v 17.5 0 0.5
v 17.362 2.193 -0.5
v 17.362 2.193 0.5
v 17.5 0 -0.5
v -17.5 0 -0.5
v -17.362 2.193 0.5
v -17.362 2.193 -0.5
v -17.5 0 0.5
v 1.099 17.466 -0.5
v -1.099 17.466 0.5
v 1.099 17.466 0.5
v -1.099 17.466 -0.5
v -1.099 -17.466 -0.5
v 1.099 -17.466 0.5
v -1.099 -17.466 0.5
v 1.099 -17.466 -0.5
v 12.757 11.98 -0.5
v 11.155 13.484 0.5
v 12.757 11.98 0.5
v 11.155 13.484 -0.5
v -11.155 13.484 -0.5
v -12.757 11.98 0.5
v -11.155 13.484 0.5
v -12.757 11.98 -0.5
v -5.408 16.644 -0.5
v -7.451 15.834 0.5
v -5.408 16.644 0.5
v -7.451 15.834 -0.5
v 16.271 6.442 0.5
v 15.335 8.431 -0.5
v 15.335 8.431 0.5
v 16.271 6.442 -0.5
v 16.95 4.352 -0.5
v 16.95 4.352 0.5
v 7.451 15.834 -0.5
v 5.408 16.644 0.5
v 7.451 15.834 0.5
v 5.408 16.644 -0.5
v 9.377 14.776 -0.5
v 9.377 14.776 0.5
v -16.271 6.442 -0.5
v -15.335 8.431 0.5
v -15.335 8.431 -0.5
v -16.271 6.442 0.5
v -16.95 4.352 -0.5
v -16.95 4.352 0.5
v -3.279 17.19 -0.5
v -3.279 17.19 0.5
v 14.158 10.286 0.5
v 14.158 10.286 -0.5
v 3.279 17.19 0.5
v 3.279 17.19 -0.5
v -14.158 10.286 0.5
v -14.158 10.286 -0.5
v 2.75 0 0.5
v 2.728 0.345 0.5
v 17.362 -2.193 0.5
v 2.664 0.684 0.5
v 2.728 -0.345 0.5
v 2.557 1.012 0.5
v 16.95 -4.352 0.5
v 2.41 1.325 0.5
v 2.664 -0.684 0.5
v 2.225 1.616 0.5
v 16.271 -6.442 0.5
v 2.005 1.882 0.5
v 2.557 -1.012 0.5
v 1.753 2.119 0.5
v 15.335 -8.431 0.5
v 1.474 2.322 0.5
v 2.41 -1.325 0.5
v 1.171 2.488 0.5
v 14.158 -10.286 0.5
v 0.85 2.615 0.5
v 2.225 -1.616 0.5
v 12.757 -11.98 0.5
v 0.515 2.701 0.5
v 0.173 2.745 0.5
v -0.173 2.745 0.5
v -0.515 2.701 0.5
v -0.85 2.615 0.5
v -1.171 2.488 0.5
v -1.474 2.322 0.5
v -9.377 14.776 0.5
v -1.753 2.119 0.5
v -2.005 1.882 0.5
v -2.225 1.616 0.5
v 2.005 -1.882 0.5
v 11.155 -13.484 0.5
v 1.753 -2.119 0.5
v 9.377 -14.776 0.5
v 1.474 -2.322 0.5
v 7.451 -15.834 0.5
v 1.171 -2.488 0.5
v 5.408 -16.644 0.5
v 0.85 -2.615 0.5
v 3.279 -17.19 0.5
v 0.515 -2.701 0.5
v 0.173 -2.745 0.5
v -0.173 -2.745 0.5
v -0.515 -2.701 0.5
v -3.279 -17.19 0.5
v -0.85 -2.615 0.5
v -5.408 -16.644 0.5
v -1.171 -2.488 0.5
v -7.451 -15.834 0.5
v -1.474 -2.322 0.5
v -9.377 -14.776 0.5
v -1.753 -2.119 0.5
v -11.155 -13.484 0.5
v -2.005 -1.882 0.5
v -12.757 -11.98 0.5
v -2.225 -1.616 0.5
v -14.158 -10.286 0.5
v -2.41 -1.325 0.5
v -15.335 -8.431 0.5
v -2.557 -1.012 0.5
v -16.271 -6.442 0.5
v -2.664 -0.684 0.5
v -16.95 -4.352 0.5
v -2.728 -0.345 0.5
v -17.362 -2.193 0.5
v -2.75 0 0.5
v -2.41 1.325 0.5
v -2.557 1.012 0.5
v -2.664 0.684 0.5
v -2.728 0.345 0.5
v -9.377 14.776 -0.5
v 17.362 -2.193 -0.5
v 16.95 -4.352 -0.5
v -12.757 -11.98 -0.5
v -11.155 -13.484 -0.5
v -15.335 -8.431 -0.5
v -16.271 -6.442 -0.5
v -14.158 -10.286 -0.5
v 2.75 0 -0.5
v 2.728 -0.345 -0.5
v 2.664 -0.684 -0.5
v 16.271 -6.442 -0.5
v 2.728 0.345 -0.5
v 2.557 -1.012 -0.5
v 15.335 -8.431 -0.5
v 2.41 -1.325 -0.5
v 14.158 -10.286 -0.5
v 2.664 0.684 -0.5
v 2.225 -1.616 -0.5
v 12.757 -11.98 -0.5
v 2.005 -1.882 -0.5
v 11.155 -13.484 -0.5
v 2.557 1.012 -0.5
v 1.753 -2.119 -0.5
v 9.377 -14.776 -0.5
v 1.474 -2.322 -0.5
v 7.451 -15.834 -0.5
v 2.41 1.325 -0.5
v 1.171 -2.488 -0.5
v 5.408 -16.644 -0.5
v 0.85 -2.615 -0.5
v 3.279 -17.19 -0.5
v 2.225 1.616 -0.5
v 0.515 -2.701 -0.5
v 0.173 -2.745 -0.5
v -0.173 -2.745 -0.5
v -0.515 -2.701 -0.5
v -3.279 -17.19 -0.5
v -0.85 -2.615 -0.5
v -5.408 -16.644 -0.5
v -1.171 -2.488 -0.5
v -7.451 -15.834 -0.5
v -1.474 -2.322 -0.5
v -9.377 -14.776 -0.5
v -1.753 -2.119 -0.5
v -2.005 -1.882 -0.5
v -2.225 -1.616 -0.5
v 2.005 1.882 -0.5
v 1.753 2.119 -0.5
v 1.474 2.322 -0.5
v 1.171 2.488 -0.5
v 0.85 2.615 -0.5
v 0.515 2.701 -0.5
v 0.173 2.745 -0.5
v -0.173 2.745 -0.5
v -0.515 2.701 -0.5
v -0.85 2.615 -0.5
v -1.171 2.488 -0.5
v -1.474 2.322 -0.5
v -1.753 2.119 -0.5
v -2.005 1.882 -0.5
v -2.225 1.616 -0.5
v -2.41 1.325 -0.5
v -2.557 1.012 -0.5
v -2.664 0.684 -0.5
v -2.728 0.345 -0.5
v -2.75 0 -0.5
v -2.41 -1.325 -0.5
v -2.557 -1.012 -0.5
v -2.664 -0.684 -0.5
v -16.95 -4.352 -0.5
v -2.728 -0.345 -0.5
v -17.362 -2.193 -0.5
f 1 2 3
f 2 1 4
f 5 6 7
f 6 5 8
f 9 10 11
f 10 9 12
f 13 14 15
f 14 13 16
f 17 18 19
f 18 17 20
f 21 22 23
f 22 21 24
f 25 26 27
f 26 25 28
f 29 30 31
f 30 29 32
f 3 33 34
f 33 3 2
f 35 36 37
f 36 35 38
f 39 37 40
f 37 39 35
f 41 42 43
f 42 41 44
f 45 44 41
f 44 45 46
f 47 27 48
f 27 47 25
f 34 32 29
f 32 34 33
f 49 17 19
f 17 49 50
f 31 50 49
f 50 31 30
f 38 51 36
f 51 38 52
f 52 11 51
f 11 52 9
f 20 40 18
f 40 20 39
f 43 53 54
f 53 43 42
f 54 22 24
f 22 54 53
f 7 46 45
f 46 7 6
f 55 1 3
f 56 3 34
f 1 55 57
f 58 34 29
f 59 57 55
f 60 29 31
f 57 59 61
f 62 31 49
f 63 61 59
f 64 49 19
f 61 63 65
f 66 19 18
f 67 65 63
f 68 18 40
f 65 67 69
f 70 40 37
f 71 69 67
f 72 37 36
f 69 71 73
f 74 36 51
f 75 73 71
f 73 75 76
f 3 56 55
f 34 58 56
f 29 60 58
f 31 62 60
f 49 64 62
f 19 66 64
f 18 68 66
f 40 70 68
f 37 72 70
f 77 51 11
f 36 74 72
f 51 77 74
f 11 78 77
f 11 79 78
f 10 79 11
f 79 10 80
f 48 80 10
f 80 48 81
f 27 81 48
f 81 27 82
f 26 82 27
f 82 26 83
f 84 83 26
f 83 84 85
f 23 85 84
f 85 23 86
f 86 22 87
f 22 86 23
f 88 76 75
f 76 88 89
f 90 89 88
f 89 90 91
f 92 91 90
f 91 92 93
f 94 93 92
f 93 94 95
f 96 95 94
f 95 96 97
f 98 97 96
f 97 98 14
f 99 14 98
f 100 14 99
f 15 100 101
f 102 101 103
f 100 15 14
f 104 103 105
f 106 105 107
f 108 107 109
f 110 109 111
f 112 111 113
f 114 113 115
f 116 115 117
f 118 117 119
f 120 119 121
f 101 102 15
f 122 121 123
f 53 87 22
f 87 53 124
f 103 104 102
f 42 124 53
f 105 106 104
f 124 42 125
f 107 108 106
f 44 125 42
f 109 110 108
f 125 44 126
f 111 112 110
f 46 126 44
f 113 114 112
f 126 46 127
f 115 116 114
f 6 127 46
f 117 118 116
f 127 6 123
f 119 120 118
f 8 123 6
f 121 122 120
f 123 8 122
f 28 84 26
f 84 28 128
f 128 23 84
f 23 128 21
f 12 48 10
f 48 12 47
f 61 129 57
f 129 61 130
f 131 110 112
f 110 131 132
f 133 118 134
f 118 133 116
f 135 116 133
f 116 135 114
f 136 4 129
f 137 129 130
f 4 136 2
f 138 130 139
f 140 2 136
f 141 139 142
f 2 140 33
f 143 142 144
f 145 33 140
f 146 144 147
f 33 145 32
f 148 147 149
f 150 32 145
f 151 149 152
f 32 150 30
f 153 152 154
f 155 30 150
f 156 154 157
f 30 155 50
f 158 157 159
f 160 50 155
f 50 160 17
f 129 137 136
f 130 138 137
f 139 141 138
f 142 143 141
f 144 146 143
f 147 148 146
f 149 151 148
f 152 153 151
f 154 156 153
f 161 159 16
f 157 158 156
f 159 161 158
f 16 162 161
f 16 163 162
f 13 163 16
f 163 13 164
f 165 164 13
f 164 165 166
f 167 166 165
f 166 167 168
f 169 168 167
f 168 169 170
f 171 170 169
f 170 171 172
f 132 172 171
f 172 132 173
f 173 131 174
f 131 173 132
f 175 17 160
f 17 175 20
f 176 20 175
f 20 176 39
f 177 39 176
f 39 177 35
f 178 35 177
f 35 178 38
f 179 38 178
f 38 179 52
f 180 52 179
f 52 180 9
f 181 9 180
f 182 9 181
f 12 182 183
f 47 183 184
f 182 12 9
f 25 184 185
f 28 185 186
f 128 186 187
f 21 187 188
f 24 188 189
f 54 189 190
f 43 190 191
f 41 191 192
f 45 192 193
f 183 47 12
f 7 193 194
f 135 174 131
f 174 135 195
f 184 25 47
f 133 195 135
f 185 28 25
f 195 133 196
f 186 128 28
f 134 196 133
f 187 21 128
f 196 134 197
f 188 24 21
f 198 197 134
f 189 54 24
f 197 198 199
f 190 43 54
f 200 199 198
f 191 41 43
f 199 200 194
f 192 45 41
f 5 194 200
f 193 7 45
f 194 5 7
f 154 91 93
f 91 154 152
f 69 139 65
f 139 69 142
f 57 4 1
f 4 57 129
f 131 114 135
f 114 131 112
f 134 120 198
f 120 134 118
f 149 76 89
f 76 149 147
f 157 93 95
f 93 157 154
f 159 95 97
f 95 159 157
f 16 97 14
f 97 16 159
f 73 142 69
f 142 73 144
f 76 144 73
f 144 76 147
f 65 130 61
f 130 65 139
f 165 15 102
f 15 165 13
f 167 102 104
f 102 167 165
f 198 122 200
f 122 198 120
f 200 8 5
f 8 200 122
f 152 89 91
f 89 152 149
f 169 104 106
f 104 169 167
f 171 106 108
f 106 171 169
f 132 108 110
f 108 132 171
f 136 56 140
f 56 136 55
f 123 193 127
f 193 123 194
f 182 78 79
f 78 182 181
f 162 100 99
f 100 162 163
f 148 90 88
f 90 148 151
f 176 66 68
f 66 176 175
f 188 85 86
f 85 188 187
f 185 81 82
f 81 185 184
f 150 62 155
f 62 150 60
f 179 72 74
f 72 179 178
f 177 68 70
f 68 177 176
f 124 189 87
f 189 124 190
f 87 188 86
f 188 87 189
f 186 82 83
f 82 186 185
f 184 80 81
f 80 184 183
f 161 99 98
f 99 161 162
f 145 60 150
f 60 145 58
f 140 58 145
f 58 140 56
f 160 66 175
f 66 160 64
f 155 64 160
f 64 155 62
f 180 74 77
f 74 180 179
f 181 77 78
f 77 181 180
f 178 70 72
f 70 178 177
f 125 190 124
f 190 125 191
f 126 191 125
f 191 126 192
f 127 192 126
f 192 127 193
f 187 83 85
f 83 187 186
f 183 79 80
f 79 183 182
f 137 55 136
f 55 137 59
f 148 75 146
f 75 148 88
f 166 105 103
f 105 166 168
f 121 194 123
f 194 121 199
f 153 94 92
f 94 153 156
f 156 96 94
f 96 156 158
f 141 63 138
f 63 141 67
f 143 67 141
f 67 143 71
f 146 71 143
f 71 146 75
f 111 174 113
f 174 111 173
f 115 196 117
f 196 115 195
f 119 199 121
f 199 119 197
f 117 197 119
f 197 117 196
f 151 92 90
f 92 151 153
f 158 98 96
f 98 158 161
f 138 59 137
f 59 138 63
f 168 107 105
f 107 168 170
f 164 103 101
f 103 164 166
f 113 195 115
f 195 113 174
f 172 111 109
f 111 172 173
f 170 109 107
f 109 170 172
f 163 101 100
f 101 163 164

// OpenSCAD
$fn = 50;


difference() {
	union() {
		translate(v = [0, 0, -0.5000000000]) {
			cylinder(h = 1, r = 17.5000000000);
		}
	}
	union() {
		translate(v = [0, 0, -100.0000000000]) {
			cylinder(h = 200, r = 2.7500000000);
		}
	}
}
